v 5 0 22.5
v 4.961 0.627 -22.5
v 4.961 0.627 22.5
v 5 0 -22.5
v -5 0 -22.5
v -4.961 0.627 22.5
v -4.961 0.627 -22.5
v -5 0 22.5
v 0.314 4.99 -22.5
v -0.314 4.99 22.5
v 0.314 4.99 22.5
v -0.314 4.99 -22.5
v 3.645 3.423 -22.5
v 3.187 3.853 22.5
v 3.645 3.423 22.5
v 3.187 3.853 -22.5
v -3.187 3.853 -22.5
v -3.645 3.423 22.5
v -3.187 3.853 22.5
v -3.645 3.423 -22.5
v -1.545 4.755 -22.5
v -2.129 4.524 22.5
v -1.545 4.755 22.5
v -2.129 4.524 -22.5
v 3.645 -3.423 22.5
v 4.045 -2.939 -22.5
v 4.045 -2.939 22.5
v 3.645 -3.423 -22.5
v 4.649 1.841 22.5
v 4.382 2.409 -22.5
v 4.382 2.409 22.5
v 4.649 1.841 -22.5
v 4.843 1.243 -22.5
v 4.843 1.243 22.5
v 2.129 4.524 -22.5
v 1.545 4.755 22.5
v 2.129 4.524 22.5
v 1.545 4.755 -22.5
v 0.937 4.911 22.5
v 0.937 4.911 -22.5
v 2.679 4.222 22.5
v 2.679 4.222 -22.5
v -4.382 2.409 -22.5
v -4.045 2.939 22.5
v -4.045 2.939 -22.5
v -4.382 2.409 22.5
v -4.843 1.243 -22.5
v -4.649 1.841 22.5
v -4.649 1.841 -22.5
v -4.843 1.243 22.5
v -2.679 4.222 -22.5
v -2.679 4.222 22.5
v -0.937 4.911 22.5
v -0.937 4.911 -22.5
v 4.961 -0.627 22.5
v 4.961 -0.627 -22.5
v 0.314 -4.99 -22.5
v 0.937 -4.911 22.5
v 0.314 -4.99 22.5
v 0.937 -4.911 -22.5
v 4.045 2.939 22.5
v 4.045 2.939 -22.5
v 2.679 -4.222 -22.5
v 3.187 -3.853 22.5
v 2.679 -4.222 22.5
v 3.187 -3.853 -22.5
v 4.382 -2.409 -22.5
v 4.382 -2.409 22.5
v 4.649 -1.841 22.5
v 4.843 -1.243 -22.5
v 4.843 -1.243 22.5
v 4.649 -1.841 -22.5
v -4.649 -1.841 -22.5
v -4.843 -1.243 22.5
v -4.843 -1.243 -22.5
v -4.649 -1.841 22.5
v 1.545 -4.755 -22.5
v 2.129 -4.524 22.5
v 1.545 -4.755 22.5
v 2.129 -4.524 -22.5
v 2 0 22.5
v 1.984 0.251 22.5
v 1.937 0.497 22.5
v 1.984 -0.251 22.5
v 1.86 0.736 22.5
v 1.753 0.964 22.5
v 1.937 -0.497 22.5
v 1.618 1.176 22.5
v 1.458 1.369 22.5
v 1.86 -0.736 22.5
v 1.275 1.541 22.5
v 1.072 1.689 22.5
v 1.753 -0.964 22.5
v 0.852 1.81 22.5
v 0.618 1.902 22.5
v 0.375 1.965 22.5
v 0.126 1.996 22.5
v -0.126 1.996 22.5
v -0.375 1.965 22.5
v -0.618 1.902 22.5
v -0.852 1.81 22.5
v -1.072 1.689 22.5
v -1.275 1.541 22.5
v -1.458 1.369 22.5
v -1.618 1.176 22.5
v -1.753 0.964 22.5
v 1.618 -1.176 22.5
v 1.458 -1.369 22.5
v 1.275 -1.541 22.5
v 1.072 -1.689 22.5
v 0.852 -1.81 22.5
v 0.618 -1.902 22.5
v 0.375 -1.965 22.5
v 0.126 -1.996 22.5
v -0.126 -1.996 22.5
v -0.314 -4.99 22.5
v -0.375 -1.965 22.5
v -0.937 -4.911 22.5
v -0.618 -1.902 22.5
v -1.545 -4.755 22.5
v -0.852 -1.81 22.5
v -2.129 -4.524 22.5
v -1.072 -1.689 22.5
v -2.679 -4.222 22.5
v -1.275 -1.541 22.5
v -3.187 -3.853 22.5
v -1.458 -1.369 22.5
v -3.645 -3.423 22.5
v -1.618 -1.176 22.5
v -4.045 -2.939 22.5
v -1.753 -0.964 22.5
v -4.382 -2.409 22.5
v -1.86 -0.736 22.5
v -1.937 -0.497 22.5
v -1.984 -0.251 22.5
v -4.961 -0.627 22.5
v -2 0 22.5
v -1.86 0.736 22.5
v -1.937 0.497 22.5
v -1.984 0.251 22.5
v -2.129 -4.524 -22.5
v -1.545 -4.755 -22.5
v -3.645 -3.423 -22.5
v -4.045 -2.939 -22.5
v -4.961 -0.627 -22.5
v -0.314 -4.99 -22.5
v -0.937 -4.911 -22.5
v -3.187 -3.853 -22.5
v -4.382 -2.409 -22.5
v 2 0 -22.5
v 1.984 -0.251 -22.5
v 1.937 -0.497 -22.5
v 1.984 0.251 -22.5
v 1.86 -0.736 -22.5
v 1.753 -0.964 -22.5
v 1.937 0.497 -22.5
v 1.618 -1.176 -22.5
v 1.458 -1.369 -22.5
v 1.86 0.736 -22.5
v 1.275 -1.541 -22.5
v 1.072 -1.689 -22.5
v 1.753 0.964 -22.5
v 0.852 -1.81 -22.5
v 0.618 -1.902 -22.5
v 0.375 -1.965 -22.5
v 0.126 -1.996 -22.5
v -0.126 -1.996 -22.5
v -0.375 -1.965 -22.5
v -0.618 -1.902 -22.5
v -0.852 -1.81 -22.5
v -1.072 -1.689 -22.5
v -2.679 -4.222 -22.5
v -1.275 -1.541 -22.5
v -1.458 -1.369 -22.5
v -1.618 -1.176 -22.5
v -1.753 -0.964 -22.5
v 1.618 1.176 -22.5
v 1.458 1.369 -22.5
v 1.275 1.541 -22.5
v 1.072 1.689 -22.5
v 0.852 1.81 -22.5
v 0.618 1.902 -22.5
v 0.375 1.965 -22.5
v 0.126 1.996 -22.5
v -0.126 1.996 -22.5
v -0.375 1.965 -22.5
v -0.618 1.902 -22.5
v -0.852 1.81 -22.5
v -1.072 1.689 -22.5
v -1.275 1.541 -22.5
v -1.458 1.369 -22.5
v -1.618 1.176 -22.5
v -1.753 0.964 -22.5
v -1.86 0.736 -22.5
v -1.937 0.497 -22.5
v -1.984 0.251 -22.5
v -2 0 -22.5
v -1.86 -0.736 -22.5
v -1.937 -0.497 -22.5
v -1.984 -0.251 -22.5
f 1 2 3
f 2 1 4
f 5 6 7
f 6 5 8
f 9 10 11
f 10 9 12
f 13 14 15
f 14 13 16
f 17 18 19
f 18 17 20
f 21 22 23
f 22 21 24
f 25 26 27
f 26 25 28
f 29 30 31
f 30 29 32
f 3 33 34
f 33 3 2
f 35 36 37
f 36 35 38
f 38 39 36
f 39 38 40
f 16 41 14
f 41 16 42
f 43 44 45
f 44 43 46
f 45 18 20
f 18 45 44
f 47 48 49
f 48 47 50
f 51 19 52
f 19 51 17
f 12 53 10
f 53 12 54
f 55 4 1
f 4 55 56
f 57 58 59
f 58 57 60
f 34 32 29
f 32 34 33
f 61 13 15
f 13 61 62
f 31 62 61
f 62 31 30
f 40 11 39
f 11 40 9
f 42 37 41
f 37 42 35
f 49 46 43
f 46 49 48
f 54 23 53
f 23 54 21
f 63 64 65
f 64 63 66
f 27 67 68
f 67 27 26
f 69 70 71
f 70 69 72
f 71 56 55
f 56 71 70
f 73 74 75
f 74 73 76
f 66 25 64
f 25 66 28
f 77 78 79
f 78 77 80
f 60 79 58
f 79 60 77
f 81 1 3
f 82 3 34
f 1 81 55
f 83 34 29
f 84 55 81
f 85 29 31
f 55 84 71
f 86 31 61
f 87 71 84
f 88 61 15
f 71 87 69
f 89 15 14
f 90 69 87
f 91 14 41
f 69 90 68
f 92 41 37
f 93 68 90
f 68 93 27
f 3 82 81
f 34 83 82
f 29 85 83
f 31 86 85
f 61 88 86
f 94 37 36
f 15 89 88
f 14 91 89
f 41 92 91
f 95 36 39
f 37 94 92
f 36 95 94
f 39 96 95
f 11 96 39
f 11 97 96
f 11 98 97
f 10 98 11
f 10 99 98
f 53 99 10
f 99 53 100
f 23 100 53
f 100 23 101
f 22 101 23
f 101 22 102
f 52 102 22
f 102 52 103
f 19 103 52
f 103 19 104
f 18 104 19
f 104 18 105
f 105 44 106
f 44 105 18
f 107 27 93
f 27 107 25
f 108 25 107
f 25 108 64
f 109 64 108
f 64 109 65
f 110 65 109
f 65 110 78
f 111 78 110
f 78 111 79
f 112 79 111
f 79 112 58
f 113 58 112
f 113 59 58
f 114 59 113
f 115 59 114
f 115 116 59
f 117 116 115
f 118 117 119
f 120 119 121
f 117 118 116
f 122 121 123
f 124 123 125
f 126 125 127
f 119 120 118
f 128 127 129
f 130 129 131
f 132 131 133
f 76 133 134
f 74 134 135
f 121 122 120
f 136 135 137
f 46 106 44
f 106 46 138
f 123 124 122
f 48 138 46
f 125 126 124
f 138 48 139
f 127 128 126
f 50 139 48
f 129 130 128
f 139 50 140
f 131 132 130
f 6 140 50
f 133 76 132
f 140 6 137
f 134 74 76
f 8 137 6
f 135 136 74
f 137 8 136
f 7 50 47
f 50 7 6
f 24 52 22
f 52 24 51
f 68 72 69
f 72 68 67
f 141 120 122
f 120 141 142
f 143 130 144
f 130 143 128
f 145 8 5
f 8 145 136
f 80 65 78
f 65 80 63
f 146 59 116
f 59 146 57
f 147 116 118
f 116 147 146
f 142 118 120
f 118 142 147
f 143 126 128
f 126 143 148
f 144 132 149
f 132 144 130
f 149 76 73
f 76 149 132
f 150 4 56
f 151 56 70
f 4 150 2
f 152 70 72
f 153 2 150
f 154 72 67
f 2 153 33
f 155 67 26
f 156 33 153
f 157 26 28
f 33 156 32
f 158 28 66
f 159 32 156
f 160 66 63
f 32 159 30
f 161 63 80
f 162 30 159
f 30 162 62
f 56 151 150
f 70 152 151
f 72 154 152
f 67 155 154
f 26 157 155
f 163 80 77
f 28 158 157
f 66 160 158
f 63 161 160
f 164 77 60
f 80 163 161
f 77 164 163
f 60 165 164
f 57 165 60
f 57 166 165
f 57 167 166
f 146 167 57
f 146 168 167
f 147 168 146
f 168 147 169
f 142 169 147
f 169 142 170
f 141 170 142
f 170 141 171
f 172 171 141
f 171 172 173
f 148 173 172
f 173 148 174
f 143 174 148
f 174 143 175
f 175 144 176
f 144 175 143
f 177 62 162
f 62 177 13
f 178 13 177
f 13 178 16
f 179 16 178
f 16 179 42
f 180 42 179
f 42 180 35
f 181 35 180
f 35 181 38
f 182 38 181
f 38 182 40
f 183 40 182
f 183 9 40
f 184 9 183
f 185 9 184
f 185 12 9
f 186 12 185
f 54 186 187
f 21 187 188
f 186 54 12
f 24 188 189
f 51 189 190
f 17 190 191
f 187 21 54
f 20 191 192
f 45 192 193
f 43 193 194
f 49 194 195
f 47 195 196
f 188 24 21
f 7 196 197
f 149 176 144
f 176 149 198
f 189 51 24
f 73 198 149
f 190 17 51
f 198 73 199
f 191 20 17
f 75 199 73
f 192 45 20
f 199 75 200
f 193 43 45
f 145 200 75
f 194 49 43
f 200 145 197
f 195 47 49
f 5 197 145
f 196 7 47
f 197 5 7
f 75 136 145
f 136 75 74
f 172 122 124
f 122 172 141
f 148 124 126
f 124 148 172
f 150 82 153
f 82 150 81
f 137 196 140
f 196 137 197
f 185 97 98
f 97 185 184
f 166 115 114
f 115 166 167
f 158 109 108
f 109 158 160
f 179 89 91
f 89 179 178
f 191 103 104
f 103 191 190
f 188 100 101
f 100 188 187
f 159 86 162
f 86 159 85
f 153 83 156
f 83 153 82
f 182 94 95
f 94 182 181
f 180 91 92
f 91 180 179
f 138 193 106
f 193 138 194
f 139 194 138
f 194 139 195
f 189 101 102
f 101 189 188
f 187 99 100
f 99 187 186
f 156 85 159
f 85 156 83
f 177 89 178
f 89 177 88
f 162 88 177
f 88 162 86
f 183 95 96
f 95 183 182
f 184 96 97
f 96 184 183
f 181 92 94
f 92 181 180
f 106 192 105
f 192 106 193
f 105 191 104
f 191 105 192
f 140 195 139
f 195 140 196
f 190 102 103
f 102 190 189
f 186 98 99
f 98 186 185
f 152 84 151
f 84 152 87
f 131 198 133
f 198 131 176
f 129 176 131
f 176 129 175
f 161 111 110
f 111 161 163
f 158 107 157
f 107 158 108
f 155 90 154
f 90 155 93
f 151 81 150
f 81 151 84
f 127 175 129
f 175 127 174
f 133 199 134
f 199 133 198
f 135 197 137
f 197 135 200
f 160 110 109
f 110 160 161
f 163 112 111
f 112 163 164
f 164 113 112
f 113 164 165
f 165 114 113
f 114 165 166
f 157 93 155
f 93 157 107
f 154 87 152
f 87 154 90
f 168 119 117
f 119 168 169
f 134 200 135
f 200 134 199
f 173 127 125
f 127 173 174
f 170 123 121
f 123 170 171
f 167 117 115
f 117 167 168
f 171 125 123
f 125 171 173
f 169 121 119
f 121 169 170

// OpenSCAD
$fn = 50;


difference() {
	union() {
		translate(v = [0, 0, -22.5000000000]) {
			cylinder(h = 45, r = 5.0000000000);
		}
	}
	union() {
		translate(v = [0, 0, -100.0000000000]) {
			cylinder(h = 200, r = 2.0000000000);
		}
	}
}
